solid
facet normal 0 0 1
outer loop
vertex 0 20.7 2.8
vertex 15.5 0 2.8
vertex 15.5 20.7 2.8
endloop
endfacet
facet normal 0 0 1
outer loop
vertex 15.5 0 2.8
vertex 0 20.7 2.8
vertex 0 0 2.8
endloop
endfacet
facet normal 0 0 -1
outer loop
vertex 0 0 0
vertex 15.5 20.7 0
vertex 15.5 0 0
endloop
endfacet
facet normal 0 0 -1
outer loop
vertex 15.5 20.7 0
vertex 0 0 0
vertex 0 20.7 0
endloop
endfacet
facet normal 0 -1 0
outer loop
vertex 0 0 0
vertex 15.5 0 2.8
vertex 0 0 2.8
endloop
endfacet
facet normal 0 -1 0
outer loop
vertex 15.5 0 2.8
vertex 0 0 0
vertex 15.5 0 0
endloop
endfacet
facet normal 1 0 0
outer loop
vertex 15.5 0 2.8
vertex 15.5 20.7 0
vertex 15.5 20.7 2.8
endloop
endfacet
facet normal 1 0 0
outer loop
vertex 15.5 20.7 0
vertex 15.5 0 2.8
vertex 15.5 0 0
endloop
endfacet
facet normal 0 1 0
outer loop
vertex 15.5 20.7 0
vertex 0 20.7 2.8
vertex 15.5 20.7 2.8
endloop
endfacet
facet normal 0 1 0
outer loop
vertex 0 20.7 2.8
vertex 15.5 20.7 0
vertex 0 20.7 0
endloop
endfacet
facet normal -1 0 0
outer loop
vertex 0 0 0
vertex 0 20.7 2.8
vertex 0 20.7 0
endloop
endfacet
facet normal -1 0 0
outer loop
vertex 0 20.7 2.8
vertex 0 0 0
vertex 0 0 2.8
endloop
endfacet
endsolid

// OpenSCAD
/* Warning, this is a very basic generator with a lot of approximation 
input data : [MODULE, 2XW, 15.5x20.7x2.8mm, 39, , B, C04-10054B]
generated by com.zoubworld.electronics.cad.model3d.Basic
Date : Sun Feb 15 10:50:49 CET 2026
*/

//body
color("black")
translate([0,0,0])
cube([15.5,20.7,2.8], center=false);
